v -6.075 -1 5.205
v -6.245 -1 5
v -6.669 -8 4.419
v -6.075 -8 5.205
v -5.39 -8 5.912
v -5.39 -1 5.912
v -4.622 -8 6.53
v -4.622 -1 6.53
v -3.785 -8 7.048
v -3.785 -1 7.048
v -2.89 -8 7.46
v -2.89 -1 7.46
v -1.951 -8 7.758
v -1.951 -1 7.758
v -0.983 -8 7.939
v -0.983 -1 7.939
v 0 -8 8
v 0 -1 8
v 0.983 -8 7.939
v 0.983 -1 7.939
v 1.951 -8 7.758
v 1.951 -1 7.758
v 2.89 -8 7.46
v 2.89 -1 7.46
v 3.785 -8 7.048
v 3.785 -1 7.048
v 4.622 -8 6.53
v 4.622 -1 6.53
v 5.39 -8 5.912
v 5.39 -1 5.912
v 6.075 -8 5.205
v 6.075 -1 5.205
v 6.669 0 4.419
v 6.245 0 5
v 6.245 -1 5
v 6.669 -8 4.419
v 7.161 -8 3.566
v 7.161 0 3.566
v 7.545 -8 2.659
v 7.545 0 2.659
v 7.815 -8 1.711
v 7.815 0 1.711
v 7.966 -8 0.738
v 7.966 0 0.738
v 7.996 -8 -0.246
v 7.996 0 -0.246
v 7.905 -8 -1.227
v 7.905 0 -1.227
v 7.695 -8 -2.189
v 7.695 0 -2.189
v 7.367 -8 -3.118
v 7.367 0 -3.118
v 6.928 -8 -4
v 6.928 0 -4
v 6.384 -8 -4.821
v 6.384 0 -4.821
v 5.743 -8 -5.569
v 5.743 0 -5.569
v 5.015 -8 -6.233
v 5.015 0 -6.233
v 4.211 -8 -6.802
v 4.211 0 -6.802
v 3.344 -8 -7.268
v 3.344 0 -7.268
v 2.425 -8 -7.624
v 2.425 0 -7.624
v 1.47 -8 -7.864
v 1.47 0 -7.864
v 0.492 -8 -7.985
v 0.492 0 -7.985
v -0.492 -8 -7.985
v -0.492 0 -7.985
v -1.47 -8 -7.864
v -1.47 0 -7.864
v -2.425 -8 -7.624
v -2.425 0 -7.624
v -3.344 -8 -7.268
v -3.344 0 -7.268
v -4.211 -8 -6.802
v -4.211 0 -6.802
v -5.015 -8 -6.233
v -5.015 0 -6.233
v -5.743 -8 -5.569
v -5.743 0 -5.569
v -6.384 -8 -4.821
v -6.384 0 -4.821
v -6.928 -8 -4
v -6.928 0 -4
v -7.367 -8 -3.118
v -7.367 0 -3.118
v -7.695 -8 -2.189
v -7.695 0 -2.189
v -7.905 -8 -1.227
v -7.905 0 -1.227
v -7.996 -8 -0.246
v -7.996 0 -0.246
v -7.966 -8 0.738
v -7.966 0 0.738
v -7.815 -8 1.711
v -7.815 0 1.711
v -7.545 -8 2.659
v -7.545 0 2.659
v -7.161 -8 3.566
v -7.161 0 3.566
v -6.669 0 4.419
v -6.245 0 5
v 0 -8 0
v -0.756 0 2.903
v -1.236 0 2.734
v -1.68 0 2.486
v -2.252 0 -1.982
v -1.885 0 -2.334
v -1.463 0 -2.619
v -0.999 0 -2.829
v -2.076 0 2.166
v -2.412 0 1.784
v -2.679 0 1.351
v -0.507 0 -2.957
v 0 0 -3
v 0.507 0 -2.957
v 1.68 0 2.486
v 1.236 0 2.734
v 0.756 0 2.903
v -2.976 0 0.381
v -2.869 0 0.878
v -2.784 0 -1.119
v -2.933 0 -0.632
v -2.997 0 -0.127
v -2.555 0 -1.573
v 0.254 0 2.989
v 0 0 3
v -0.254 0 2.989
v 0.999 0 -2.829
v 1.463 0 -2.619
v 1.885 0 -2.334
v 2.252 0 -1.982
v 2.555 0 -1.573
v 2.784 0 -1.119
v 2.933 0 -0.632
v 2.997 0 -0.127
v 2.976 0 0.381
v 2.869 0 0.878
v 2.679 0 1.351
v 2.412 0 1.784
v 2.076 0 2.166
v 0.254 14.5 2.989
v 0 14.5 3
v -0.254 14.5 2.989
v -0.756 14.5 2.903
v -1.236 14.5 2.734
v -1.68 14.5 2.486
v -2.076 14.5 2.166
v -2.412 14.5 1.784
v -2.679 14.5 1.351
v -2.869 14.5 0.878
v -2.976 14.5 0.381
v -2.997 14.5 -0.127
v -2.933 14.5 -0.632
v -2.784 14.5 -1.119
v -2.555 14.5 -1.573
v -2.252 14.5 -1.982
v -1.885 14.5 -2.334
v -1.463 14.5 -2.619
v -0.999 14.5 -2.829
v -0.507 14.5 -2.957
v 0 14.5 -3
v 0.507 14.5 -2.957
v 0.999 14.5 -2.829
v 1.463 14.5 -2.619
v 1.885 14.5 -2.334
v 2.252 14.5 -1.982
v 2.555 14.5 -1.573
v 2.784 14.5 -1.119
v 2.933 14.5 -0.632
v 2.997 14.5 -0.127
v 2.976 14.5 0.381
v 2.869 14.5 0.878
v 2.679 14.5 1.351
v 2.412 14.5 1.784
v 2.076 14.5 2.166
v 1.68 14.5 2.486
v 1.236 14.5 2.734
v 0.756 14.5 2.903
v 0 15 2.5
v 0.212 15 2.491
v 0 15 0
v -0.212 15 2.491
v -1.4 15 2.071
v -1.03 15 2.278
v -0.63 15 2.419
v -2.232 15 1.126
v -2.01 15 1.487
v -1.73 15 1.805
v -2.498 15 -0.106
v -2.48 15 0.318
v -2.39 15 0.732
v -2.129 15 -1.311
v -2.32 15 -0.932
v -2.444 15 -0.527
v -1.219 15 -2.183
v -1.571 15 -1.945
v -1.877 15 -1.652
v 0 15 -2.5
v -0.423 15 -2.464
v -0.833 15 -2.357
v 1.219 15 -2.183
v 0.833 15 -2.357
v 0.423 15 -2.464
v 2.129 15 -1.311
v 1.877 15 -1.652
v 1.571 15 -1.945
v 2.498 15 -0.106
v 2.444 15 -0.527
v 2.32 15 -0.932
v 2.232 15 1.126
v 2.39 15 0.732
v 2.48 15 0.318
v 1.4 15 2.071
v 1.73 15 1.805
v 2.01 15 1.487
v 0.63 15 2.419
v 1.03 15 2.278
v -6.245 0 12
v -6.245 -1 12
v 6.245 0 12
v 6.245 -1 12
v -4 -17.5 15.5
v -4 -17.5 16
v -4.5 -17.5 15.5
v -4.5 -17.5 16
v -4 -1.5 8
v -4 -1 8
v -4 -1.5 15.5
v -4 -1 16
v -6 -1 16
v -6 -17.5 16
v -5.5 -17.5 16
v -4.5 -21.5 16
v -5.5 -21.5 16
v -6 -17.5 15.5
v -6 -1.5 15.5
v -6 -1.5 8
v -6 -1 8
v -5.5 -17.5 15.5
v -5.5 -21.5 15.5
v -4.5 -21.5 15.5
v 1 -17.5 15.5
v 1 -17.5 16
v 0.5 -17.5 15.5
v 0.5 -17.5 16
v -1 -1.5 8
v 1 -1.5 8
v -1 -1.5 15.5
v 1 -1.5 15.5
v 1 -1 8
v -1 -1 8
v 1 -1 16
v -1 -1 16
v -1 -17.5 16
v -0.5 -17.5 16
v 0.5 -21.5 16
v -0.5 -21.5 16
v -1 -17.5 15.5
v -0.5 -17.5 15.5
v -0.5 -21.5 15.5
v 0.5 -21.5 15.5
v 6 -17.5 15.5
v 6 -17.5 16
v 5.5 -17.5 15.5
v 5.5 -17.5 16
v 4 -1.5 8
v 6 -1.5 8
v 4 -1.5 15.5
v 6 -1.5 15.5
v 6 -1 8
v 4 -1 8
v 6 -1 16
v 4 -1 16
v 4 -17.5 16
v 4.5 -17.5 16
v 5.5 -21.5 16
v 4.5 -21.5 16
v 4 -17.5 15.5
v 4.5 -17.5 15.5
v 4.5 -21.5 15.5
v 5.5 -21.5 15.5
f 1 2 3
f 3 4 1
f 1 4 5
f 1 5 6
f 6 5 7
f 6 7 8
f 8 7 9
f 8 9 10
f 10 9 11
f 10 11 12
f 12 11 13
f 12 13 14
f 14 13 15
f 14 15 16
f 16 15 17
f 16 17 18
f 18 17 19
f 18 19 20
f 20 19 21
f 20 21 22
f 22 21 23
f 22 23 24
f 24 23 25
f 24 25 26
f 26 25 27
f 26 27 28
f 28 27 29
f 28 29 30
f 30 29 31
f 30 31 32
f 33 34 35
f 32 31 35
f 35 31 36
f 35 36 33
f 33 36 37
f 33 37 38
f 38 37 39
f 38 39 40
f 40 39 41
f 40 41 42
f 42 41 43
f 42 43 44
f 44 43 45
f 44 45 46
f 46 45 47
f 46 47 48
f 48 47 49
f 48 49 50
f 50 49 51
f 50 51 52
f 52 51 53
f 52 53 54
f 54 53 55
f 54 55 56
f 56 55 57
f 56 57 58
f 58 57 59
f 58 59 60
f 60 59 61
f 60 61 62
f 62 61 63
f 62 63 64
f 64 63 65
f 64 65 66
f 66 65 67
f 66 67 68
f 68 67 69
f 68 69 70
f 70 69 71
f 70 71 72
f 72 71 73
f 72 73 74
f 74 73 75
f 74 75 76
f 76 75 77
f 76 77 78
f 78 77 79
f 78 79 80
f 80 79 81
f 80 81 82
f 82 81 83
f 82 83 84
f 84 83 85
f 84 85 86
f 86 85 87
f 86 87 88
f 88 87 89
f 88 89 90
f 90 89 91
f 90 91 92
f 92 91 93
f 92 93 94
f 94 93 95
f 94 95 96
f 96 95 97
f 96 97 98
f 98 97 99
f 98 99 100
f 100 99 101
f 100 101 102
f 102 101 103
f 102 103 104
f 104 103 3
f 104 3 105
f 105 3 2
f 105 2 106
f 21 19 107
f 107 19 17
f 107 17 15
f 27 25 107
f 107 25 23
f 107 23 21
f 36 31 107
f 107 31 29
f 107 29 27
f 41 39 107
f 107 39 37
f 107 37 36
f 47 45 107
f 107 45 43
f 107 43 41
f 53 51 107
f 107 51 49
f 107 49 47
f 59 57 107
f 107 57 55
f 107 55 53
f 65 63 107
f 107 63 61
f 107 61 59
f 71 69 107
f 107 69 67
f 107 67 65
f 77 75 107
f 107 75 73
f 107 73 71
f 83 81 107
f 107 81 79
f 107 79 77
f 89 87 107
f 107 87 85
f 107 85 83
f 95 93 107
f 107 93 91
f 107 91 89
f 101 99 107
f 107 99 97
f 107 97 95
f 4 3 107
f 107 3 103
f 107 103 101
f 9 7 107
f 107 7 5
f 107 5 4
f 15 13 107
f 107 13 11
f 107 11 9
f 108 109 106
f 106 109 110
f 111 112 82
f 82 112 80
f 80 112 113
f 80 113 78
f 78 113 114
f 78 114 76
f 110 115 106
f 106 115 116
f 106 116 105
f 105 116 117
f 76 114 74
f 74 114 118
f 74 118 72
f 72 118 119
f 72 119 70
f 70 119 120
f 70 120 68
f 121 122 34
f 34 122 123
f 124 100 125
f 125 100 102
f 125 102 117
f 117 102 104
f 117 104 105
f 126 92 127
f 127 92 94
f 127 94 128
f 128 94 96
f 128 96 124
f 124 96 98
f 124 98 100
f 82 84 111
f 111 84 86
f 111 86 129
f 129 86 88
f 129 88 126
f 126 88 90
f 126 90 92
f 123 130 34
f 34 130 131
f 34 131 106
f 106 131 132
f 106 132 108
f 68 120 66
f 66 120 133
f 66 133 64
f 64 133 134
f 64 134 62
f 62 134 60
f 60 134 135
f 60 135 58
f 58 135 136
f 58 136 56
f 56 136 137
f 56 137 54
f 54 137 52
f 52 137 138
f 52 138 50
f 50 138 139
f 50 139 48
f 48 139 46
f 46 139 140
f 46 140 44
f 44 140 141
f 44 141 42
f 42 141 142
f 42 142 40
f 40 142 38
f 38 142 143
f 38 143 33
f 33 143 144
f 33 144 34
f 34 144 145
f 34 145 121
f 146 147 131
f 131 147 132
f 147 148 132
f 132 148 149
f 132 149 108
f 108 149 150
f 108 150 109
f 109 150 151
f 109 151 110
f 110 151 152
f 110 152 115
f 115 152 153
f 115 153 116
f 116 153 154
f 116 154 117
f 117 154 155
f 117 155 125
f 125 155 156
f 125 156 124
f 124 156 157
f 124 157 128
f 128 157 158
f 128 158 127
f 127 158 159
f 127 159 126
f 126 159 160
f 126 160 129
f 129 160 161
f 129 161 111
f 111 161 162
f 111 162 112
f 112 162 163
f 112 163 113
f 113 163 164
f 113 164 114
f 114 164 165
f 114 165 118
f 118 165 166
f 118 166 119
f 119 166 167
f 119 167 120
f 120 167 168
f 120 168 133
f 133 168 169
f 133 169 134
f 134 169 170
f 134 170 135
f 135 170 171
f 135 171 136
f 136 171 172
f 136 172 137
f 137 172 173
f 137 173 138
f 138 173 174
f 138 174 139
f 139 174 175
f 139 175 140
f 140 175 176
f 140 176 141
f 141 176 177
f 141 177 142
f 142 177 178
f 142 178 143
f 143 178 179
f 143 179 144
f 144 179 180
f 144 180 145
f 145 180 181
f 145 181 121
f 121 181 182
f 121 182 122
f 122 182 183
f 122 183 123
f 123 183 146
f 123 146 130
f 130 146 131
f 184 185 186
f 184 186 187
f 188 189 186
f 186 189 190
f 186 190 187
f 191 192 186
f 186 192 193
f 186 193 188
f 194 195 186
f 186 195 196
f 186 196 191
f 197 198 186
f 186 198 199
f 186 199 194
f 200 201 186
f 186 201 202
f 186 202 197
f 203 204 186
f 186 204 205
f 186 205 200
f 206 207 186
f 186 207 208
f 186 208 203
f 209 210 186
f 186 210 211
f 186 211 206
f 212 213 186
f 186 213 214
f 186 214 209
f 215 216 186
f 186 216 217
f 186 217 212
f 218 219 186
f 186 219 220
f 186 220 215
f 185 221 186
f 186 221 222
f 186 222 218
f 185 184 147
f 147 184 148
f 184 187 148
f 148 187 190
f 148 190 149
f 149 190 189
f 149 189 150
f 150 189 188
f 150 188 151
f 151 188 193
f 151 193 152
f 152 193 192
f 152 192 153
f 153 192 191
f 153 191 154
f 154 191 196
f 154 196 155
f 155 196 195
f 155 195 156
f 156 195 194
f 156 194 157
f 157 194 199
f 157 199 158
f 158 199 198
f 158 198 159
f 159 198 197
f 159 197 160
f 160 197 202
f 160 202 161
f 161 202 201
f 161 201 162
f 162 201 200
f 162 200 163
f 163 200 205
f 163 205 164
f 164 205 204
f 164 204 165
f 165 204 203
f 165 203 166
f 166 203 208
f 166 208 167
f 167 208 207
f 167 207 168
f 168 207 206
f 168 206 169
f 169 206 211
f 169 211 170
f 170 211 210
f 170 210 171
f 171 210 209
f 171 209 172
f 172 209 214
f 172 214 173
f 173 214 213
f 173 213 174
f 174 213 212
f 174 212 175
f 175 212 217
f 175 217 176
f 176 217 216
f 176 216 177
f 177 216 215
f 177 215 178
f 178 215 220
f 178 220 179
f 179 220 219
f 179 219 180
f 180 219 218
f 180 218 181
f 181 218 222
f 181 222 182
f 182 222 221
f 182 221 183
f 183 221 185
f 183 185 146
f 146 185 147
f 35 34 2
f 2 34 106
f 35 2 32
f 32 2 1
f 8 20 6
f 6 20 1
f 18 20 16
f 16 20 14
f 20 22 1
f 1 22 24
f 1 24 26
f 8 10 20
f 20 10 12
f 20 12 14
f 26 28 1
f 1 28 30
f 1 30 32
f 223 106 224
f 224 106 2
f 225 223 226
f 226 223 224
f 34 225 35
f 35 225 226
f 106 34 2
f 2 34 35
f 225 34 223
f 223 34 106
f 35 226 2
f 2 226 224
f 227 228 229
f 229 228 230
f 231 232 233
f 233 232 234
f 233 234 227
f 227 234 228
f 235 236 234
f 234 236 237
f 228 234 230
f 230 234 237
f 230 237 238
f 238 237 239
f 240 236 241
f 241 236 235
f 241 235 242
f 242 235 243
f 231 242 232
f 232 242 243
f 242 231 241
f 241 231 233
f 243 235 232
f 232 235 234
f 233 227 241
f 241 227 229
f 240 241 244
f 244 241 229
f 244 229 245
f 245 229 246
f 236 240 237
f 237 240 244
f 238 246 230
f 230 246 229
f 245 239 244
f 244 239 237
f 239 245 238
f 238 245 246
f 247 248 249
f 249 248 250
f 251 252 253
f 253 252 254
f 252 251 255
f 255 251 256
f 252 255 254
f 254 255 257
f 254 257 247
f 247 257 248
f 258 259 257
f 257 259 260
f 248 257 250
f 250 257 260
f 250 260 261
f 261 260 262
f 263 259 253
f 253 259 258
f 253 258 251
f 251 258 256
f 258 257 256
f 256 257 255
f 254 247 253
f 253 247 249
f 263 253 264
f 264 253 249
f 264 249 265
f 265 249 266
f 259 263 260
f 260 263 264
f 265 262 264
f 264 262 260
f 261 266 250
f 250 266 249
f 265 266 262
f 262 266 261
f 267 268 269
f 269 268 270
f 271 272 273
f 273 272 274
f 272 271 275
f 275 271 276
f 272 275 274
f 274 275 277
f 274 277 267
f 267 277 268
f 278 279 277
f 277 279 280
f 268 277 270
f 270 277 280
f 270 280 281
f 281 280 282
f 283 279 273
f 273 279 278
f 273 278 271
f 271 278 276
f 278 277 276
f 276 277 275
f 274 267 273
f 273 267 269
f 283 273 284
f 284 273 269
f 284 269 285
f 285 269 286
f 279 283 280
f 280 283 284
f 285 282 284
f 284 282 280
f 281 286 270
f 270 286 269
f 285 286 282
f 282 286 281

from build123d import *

# Parameters (mm, degrees)
SKETCH1_R             = 8
BOSS_EXTRUDE1_DEPTH   = 8
SKETCH3_R             = 3
BOSS_EXTRUDE2_DEPTH   = 15
CHAMFER1_SIZE         = 0.5
SKETCH2_W             = 19.85892558
SKETCH2_H             = 6
CUT_EXTRUDE2_DEPTH    = 1
SKETCH4_W             = 12.489995996
SKETCH4_H             = 7
BOSS_EXTRUDE3_DEPTH   = 1
SKETCH5_W             = 2
SKETCH5_H             = 8
BOSS_EXTRUDE5_DEPTH   = 0.5
BOSS_EXTRUDE5_2_DEPTH = 0.5
BOSS_EXTRUDE5_3_DEPTH = 0.5
SKETCH6_W             = 2
SKETCH6_H             = 0.5
BOSS_EXTRUDE6_DEPTH   = 16
SKETCH7_W             = 1
SKETCH7_H             = 0.5
BOSS_EXTRUDE7_DEPTH   = 4


with BuildPart() as part:
    # Sketch1 → Boss-Extrude1 (new body)
    with BuildSketch(Plane(origin=(0, 0, 0), x_dir=(1, 0, 0), z_dir=(0, 1, 0))):
        with Locations(Location((0, 0, 0), (0, 0, 270))):
            Circle(SKETCH1_R)
    extrude(amount=-BOSS_EXTRUDE1_DEPTH)

    # Sketch3 → Boss-Extrude2 (add)
    with BuildSketch(Plane(origin=(0, 0, 0), x_dir=(1, 0, 0), z_dir=(0, 1, 0))):
        with Locations(Location((0, 0, 0), (0, 0, 270))):
            Circle(SKETCH3_R)
    extrude(amount=BOSS_EXTRUDE2_DEPTH)

    # Chamfer1
    chamfer1_edges = [part.edges().sort_by_distance(p)[0] for p in [
        (0, 15, -3),
    ]]
    chamfer(chamfer1_edges, length=CHAMFER1_SIZE)

    # Sketch2 → Cut-Extrude2 (cut)
    with BuildSketch(Plane(origin=(0, 0, 0), x_dir=(1, 0, 0), z_dir=(0, 1, 0))):
        with Locations((0, -8)):
            Rectangle(SKETCH2_W, SKETCH2_H)
    extrude(amount=-CUT_EXTRUDE2_DEPTH, mode=Mode.SUBTRACT)


with BuildPart() as body_2:
    # Sketch4 → Boss-Extrude3 (new body)
    with BuildSketch(Plane(origin=(0, -1, 0), x_dir=(1, 0, 0), z_dir=(0, 1, 0))):
        with Locations((0, -8.5)):
            Rectangle(SKETCH4_W, SKETCH4_H)
    extrude(amount=BOSS_EXTRUDE3_DEPTH)


with BuildPart() as body_3:
    # Sketch5 → Boss-Extrude5 (new body)
    with BuildSketch(Plane.XZ.offset(1)):
        with Locations((0, 12)):
            Rectangle(SKETCH5_W, SKETCH5_H)
    extrude(amount=BOSS_EXTRUDE5_DEPTH)



with BuildPart() as body_4:
    # Sketch5 → Boss-Extrude5 2 (new body)
    with BuildSketch(Plane.XZ.offset(1)):
        with Locations((-5, 12)):
            Rectangle(SKETCH5_W, SKETCH5_H)
    extrude(amount=BOSS_EXTRUDE5_2_DEPTH)


with BuildPart() as body_5:
    # Sketch5 → Boss-Extrude5 3 (new body)
    with BuildSketch(Plane.XZ.offset(1)):
        with Locations((5, 12)):
            Rectangle(SKETCH5_W, SKETCH5_H)
    extrude(amount=BOSS_EXTRUDE5_3_DEPTH)


with BuildPart() as body_3_1:
    add(body_3.part)

    add(body_4.part)  # Boss-Extrude6 merges body 4

    add(body_5.part)  # Boss-Extrude6 merges body 5
    # Sketch6 → Boss-Extrude6 (add)
    with BuildSketch(Plane(origin=(0, -1.5, 0), x_dir=(-1, 0, 0), z_dir=(0, -1, 0))):
        with Locations((5, -15.75)):
            Rectangle(SKETCH6_W, SKETCH6_H)
        with Locations((0, -15.75)):
            Rectangle(SKETCH6_W, SKETCH6_H)
        with Locations((-5, -15.75)):
            Rectangle(SKETCH6_W, SKETCH6_H)
    extrude(amount=BOSS_EXTRUDE6_DEPTH)

    # Sketch7 → Boss-Extrude7 (add)
    with BuildSketch(Plane(origin=(0, -17.5, 0), x_dir=(-1, 0, 0), z_dir=(0, -1, 0))):
        with Locations((0, -15.75)):
            Rectangle(SKETCH7_W, SKETCH7_H)
        with Locations((5, -15.75)):
            Rectangle(SKETCH7_W, SKETCH7_H)
        with Locations((-5, -15.75)):
            Rectangle(SKETCH7_W, SKETCH7_H)
    extrude(amount=BOSS_EXTRUDE7_DEPTH)


solid = Compound([part.part, body_2.part, body_3_1.part])
